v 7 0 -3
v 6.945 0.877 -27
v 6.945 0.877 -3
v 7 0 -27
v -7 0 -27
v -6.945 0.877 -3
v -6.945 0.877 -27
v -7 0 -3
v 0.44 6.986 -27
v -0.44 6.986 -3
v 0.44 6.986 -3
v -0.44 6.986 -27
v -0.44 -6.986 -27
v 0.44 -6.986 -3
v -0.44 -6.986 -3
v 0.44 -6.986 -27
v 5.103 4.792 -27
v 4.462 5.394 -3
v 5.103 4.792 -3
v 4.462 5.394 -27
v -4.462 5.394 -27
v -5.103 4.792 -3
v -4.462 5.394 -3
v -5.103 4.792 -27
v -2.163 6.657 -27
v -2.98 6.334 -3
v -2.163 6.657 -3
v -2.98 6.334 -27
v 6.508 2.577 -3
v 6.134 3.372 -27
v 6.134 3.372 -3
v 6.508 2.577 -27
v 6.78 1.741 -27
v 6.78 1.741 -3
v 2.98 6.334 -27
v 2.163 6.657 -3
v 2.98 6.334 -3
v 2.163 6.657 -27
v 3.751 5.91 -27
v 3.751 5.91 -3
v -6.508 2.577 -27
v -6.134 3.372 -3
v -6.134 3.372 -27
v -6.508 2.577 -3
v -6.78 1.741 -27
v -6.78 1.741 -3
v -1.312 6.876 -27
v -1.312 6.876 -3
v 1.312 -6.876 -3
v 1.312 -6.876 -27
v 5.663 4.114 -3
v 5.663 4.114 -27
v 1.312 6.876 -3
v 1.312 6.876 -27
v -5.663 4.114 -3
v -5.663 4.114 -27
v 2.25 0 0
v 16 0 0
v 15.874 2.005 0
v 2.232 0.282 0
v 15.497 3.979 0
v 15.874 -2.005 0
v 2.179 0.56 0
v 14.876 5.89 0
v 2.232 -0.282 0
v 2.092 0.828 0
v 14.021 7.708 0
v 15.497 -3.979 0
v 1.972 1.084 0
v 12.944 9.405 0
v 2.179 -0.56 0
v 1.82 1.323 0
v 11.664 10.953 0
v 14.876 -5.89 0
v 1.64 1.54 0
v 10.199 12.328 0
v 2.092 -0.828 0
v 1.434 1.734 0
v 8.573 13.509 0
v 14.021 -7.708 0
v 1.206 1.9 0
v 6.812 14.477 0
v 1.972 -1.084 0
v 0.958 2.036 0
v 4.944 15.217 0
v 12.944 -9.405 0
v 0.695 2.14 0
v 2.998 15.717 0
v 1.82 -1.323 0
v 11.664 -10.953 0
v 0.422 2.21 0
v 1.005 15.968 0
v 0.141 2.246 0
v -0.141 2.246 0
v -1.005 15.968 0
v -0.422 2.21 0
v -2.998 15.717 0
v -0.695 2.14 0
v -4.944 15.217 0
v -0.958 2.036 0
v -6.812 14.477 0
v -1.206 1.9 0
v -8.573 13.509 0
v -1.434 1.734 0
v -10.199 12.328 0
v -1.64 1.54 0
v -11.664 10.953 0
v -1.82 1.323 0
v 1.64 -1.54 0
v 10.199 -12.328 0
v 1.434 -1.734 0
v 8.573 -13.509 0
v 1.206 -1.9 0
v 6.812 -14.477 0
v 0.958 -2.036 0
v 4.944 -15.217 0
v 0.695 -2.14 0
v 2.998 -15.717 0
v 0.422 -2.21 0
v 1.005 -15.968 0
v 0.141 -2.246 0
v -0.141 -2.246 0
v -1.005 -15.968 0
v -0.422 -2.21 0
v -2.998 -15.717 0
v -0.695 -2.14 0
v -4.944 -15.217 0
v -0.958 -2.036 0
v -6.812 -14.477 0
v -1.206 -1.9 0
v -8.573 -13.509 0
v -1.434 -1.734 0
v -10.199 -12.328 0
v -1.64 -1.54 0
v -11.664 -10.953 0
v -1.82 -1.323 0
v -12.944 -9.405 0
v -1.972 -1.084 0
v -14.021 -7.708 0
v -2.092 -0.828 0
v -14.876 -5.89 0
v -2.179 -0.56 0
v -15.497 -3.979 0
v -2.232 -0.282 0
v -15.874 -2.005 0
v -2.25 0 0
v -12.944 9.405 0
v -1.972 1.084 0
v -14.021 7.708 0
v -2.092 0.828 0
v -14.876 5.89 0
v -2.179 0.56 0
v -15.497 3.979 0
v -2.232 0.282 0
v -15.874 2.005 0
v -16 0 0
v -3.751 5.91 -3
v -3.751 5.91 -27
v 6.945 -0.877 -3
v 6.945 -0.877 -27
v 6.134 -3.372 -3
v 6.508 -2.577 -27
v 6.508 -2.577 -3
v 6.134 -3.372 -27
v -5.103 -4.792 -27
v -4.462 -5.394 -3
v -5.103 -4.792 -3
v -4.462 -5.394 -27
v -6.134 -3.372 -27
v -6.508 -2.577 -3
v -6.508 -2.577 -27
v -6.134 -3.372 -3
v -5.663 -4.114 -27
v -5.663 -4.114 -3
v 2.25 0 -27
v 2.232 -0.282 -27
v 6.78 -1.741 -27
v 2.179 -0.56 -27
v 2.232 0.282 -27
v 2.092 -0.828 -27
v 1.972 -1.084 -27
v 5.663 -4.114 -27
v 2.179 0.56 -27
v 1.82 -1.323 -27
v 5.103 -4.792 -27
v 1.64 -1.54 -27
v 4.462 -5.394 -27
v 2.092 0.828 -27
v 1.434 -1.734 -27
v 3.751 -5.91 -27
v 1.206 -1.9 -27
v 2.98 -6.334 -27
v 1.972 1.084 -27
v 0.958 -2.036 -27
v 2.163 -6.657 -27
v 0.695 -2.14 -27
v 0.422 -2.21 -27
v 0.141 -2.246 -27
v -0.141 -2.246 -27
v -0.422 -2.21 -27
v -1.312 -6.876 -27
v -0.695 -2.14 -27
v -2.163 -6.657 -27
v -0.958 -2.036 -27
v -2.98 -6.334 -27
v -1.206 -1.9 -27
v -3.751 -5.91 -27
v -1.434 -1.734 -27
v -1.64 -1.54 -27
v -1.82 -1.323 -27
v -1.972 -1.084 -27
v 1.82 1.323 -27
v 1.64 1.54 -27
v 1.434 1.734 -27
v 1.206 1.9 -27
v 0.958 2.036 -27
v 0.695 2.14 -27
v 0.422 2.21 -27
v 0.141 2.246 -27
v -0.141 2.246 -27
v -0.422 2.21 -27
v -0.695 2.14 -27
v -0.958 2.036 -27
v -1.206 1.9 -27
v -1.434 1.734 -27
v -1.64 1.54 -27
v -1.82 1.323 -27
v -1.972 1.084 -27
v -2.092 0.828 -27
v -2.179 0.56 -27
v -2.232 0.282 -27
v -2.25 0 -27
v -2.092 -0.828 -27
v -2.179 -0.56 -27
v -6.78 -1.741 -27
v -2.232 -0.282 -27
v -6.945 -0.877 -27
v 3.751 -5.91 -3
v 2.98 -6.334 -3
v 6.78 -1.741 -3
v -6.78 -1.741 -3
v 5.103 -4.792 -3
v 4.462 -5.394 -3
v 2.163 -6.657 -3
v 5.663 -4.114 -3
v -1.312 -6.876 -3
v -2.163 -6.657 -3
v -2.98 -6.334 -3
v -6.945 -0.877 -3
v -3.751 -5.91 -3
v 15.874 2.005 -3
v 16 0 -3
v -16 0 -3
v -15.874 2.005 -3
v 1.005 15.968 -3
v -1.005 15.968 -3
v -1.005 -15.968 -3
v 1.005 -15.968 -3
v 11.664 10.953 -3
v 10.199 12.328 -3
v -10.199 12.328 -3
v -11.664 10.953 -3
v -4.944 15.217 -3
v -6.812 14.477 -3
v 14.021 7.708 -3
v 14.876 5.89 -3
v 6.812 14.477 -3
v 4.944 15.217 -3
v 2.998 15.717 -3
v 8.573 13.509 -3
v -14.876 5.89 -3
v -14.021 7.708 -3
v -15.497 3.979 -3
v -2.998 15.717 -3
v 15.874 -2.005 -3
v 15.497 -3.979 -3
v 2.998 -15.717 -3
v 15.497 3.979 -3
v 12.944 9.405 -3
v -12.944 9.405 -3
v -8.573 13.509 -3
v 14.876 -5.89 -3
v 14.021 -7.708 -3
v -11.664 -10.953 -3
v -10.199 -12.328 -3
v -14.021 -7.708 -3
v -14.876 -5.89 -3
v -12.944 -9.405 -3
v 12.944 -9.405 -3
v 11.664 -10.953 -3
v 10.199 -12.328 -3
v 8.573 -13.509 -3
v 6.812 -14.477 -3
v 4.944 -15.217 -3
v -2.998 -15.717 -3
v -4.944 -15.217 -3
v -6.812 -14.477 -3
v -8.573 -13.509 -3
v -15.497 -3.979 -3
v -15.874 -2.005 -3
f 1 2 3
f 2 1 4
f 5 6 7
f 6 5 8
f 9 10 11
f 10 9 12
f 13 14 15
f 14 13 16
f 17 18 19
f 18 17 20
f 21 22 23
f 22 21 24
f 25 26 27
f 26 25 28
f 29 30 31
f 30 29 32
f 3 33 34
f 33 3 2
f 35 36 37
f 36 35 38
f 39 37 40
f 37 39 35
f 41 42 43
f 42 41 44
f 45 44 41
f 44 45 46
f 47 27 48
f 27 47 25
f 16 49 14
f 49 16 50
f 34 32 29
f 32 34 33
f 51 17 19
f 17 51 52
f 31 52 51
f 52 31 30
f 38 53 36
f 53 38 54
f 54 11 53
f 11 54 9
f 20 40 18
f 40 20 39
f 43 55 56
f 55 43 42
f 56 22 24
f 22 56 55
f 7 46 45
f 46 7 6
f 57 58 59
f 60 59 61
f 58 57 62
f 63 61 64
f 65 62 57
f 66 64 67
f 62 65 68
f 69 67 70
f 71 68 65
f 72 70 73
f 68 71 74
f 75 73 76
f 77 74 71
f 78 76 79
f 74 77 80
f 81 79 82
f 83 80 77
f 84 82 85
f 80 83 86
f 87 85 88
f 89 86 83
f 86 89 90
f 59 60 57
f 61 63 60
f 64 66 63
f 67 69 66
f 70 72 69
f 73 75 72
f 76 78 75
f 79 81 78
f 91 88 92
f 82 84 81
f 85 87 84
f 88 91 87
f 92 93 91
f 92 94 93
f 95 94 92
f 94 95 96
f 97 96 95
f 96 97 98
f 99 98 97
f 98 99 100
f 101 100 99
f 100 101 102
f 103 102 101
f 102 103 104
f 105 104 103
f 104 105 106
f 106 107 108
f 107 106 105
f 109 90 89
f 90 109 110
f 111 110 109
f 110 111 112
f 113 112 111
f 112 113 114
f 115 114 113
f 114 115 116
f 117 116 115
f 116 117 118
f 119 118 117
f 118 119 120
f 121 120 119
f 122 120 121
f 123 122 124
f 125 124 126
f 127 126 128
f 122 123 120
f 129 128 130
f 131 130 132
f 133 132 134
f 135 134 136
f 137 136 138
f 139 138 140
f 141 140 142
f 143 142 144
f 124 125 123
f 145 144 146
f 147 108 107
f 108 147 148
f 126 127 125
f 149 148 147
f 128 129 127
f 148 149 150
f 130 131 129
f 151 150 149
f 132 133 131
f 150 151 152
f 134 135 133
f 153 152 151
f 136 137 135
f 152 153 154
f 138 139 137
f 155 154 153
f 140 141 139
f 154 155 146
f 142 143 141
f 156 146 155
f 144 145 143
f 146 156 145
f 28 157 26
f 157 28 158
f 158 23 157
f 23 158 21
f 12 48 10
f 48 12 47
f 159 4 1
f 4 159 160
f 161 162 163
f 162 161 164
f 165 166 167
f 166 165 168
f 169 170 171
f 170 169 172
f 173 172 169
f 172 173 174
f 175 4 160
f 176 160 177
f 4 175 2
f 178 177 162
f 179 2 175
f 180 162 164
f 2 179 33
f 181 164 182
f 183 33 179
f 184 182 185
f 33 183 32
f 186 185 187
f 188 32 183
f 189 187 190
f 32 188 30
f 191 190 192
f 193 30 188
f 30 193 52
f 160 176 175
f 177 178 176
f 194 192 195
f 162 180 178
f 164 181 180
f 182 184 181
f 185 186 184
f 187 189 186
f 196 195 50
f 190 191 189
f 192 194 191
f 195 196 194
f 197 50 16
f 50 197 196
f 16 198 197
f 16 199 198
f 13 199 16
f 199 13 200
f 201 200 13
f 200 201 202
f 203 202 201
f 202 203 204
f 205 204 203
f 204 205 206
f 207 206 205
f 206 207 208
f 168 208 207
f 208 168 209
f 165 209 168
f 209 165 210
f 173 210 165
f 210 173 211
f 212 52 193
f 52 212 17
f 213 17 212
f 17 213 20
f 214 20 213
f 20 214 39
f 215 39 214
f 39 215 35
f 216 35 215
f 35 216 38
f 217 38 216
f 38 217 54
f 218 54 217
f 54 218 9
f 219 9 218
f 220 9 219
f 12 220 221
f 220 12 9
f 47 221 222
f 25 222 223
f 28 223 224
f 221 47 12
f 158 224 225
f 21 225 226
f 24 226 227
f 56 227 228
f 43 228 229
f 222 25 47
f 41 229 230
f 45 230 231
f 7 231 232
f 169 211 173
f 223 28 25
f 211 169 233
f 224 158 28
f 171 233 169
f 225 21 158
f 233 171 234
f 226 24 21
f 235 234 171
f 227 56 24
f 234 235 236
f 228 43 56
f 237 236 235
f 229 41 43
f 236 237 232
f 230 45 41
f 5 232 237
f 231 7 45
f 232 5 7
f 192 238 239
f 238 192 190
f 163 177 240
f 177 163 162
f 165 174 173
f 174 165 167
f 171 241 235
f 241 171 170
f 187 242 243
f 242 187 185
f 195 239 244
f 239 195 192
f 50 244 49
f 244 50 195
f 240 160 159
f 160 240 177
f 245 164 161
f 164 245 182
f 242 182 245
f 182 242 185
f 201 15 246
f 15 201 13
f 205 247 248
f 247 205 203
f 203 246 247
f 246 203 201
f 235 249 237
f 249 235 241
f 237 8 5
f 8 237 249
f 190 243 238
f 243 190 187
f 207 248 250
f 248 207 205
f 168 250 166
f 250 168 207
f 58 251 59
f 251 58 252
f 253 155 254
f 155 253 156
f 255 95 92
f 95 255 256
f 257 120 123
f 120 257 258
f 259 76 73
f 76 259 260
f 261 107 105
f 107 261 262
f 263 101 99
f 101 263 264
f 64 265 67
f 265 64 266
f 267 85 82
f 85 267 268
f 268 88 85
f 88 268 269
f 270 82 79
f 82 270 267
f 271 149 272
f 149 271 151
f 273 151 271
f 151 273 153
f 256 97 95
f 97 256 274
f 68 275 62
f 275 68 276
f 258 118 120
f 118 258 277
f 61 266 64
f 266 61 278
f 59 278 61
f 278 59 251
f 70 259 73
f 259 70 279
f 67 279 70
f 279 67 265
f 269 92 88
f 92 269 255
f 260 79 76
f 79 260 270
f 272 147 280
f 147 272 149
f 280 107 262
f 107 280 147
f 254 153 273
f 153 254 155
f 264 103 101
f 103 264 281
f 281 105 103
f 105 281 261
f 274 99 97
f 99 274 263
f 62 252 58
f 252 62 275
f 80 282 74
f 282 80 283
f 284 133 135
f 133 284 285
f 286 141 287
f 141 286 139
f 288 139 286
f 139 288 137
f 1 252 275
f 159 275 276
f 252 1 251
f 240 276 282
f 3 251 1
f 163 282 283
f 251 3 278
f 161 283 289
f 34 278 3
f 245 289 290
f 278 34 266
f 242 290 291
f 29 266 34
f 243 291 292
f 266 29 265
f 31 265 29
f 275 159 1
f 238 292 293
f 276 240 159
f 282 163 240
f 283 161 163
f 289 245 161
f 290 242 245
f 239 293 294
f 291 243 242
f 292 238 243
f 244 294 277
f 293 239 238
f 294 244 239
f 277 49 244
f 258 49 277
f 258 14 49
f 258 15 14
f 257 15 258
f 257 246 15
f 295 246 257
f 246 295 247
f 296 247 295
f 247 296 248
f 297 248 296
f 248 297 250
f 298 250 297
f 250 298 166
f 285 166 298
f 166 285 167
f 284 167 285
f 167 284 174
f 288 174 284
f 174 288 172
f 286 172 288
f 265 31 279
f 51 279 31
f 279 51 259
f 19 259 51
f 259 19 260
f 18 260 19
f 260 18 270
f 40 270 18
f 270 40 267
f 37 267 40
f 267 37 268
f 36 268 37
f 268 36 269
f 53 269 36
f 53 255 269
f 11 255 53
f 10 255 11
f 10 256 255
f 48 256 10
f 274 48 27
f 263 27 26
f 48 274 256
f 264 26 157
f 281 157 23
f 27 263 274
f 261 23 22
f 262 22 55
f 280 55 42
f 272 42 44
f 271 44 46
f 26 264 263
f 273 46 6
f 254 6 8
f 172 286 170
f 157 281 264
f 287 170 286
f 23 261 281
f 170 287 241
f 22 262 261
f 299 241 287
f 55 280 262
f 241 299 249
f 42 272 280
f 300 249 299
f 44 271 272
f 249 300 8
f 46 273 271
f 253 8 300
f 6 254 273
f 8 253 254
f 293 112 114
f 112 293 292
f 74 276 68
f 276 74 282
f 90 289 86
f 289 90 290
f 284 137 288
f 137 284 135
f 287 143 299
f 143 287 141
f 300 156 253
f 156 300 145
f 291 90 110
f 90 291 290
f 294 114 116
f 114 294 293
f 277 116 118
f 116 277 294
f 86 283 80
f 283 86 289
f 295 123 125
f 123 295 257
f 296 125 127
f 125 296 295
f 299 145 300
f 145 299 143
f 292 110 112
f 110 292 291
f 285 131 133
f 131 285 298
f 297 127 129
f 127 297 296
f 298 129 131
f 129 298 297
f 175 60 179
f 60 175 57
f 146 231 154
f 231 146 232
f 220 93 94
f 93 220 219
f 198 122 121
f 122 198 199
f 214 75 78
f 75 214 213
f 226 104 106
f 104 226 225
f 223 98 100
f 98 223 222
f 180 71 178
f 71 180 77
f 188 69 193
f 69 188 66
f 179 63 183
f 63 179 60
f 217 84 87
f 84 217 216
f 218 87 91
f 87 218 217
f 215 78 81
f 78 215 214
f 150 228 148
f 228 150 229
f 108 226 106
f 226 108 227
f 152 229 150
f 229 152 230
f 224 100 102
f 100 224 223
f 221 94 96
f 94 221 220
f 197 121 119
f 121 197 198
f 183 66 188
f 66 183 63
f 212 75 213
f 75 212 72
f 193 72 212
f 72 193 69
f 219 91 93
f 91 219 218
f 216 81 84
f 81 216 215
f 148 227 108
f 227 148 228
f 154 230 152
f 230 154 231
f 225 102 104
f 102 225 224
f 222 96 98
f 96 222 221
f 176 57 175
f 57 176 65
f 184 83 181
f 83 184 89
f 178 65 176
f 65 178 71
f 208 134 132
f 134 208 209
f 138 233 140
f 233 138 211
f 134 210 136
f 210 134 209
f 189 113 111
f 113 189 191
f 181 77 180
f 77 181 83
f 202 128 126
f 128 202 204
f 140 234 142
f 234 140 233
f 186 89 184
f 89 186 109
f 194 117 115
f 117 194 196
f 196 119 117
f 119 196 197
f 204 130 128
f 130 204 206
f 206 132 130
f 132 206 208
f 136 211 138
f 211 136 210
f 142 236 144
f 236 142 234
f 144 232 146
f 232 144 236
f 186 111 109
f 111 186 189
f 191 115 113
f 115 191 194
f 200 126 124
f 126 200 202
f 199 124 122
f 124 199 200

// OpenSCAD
$fn = 50;


difference() {
	union() {
		translate(v = [0, 0, -27.0000000000]) {
			cylinder(h = 27, r = 7.0000000000);
		}
		translate(v = [0, 0, -3.0000000000]) {
			cylinder(h = 3, r = 16.0000000000);
		}
	}
	union() {
		#translate(v = [0, 0, -27]) {
			cylinder(h = 27, r = 2.2500000000);
		}
	}
}
